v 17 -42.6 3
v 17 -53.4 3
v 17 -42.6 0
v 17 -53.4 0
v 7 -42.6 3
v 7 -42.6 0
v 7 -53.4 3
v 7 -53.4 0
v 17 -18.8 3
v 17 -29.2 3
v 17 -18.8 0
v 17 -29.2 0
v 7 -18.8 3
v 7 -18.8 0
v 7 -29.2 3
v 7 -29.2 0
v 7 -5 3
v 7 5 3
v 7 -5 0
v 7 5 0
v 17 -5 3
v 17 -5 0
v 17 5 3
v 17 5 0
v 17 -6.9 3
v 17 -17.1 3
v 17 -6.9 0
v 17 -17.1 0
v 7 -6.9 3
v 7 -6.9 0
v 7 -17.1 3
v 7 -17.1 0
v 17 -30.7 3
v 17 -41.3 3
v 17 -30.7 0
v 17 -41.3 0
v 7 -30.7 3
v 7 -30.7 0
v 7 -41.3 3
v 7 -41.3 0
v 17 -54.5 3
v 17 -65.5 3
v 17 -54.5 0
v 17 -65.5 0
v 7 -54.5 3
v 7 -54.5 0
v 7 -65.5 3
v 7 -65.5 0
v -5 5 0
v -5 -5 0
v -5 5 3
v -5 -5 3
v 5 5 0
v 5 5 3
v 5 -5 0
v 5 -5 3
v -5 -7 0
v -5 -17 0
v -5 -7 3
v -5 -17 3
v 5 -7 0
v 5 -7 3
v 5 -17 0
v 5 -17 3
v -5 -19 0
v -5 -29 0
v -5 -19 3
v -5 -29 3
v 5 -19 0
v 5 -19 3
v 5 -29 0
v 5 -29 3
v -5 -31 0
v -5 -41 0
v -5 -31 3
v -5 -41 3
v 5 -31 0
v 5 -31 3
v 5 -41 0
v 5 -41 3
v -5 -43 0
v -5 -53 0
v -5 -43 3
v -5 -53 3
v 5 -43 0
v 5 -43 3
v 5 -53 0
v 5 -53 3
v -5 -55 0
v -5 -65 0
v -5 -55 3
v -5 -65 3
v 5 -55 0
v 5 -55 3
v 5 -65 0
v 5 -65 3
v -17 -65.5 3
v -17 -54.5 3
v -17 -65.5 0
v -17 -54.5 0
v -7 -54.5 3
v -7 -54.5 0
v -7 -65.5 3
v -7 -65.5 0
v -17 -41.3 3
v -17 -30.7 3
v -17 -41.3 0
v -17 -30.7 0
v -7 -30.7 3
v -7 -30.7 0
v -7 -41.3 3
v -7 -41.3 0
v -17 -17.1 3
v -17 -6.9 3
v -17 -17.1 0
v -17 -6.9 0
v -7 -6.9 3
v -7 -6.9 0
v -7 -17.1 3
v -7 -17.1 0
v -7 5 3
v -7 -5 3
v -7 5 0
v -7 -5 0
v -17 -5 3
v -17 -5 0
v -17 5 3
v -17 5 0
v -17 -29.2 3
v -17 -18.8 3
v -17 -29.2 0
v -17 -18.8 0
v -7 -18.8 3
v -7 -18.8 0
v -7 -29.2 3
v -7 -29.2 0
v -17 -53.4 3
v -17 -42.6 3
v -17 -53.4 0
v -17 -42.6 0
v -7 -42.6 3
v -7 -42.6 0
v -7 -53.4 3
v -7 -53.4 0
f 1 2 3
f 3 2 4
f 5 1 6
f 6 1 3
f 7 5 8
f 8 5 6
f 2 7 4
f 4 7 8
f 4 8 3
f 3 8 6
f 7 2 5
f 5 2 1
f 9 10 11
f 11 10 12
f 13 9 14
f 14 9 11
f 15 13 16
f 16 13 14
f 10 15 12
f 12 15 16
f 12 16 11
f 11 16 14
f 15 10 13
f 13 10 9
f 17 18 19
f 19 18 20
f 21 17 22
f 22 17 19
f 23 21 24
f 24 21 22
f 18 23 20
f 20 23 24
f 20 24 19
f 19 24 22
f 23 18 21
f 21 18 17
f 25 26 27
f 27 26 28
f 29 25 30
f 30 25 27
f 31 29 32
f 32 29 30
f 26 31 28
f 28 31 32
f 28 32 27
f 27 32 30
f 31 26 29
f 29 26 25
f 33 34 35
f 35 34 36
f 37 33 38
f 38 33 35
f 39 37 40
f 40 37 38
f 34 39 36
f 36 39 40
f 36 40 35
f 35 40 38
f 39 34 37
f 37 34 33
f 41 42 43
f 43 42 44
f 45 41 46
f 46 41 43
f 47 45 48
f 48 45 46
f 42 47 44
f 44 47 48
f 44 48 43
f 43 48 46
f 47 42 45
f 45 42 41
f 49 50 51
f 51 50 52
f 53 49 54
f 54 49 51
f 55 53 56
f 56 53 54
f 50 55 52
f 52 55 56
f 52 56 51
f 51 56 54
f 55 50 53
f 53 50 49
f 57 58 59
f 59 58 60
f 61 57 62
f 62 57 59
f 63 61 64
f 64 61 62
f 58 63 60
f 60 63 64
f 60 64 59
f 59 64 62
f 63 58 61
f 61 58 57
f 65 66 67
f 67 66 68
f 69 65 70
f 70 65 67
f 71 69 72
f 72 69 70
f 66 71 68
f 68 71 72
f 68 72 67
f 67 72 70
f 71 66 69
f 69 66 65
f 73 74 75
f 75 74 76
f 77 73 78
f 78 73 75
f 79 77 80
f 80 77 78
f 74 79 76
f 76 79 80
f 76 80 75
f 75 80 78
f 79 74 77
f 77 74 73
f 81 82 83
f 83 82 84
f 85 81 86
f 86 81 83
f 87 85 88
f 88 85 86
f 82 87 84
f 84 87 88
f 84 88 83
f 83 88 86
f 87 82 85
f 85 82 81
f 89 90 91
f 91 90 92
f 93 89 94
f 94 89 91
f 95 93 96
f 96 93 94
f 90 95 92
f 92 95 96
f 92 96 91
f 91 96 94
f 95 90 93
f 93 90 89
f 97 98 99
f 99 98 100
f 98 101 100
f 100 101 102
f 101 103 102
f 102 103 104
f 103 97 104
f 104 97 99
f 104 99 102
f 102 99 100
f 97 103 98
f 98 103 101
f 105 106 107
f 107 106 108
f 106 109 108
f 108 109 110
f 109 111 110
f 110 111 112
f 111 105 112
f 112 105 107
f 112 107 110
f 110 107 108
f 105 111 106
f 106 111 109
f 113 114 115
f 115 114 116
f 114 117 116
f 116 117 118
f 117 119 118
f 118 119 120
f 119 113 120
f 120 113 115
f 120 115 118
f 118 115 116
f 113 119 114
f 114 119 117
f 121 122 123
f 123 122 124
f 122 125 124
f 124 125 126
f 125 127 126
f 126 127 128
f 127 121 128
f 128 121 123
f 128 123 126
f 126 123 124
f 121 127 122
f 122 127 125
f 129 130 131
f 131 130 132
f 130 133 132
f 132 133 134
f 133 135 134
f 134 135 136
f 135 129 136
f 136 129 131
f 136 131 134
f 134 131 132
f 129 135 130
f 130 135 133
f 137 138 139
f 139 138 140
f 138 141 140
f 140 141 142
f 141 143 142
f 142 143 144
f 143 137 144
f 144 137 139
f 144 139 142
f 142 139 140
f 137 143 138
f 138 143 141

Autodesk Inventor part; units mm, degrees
ref_plane "YZ Plane" through (0, 0, 0) normal (1, 0, 0) x (0, 1, 0)
ref_plane "XZ Plane" through (0, 0, 0) normal (0, 1, 0) x (-1, 0, 0)
ref_plane "XY Plane" through (0, 0, 0) normal (0, 0, 1) x (1, 0, 0)
sketch "Sketch1" plane through (0, 0, 0) normal (0, 0, 1) x (1, 0, 0)
  line L0 (5, -5) -> (-5, -5)
  line L1 (-5, -5) -> (-5, 5)
  line L2 (-5, 5) -> (5, 5)
  line L3 (5, 5) -> (5, -5)
  line L4 (5, -5) -> (-5, 5) construction
  line L5 (-5, -5) -> (5, 5) construction
  point P0 (0, 0)
  dimension "d0" = 10
  dimension "d2" = 10
extrude "Extrusion1" add sketch "Sketch1" along normal blind 3
pattern_linear "Rectangular Pattern1" count 6 spacing 12 along (0, -1, 0) of "Extrusion1"
sketch "Sketch2" plane through (0, 0, 3) normal (0, 0, 1) x (-1, 0, 0)
  line L0 (-17, -5) -> (-7, -5)
  line L1 (-7, -5) -> (-7, 5)
  line L2 (-7, 5) -> (-17, 5)
  line L3 (-17, 5) -> (-17, -5)
  line L4 (-17, -5) -> (-7, 5) construction
  line L5 (-7, -5) -> (-17, 5) construction
  line L6 (5, 17) -> (-5, 17) construction
  line L7 (-5, 17) -> (-5, 7) construction
  line L8 (-5, 7) -> (5, 7) construction
  line L9 (5, 7) -> (5, 17) construction
  line L10 (5, 29) -> (-5, 29) construction
  line L11 (-5, 29) -> (-5, 19) construction
  line L12 (-5, 19) -> (5, 19) construction
  line L13 (5, 19) -> (5, 29) construction
  line L14 (5, 41) -> (-5, 41) construction
  line L15 (-5, 41) -> (-5, 31) construction
  line L16 (-5, 31) -> (5, 31) construction
  line L17 (5, 31) -> (5, 41) construction
  line L18 (5, 53) -> (-5, 53) construction
  line L19 (-5, 53) -> (-5, 43) construction
  line L20 (-5, 43) -> (5, 43) construction
  line L21 (5, 43) -> (5, 53) construction
  line L22 (5, 65) -> (-5, 65) construction
  line L23 (-5, 65) -> (-5, 55) construction
  line L24 (-5, 55) -> (5, 55) construction
  line L25 (5, 55) -> (5, 65) construction
  line L26 (-7, 17.1) -> (-17, 17.1)
  line L27 (-17, 17.1) -> (-17, 6.9)
  line L28 (-17, 6.9) -> (-7, 6.9)
  line L29 (-7, 6.9) -> (-7, 17.1)
  line L30 (-7, 17.1) -> (-17, 6.9) construction
  line L31 (-17, 17.1) -> (-7, 6.9) construction
  line L32 (-7, 29.2) -> (-17, 29.2)
  line L33 (-17, 29.2) -> (-17, 18.8)
  line L34 (-17, 18.8) -> (-7, 18.8)
  line L35 (-7, 18.8) -> (-7, 29.2)
  line L36 (-7, 29.2) -> (-17, 18.8) construction
  line L37 (-17, 29.2) -> (-7, 18.8) construction
  line L38 (-7, 41.3) -> (-17, 41.3)
  line L39 (-17, 41.3) -> (-17, 30.7)
  line L40 (-17, 30.7) -> (-7, 30.7)
  line L41 (-7, 30.7) -> (-7, 41.3)
  line L42 (-7, 41.3) -> (-17, 30.7) construction
  line L43 (-17, 41.3) -> (-7, 30.7) construction
  line L44 (-7, 53.4) -> (-17, 53.4)
  line L45 (-17, 53.4) -> (-17, 42.6)
  line L46 (-17, 42.6) -> (-7, 42.6)
  line L47 (-7, 42.6) -> (-7, 53.4)
  line L48 (-7, 53.4) -> (-17, 42.6) construction
  line L49 (-17, 53.4) -> (-7, 42.6) construction
  line L50 (-7, 65.5) -> (-17, 65.5)
  line L51 (-17, 65.5) -> (-17, 54.5)
  line L52 (-17, 54.5) -> (-7, 54.5)
  line L53 (-7, 54.5) -> (-7, 65.5)
  line L54 (-7, 65.5) -> (-17, 54.5) construction
  line L55 (-17, 65.5) -> (-7, 54.5) construction
  line L56 (-5, 12) -> (4.1191, 12) construction
  line L57 (-5, 24) -> (3.6782, 24) construction
  line L58 (-5, 36) -> (3.6782, 36) construction
  line L59 (-5, 48) -> (0, 48) construction
  line L60 (-5, 60) -> (2.1339, 60) construction
  point P0 (0, 0)
  point P1 (-12, 0)
  dimension "d8" = 12
  dimension "d10" = 10
  dimension "d11" = 10
  dimension "d12" = 10.2
  dimension "d13" = 5.1
  dimension "d14" = 10.4
  dimension "d15" = 5.2
  dimension "d16" = 5.3
  dimension "d17" = 5.4
  dimension "d18" = 10.6
  dimension "d19" = 10.8
  dimension "d20" = 11
  dimension "d21" = 5.5
extrude "Extrusion2" add sketch "Sketch2" against normal blind 3
ref_plane "Work Plane1" through (0, -5, 0) normal (1, 0, 0) x (0, 1, 0)
mirror "Mirror1" about plane through (0, -5, 0) normal (1, 0, 0) of "Extrusion2"
sketch "Sketch3" plane through (-17, 5, 3) normal (0, 0, 1) x (1, 0, 0)
  line L0 (0, 0) -> (10, 0) projected
  line L1 (0, -10) -> (0, 0) projected
  line L2 (10, -10) -> (0, -10) projected
  line L3 (10, 0) -> (10, -10) projected
  line L4 (10, -70.5) -> (0, -70.5) projected
  line L5 (10, -59.5) -> (10, -70.5) projected
  line L6 (0, -59.5) -> (10, -59.5) projected
  line L7 (0, -70.5) -> (0, -59.5) projected
  line L8 (0, 0) -> (10, 0)
  line L9 (10, 0) -> (10, -70.5)
  line L10 (10, -70.5) -> (0, -70.5)
  line L11 (0, -70.5) -> (0, 0)
  point P0 (17, -5)
extrude "Extrusion3" [suppressed]
sketch "Sketch4" plane through (0, 0, 3) normal (0, 0, 1) x (1, 0, 0)
  line L0 (17, 5) -> (7, 5) projected
  line L1 (7, 5) -> (7, -5) projected
  line L2 (7, -5) -> (17, -5) projected
  line L3 (17, -5) -> (17, 5) projected
  line L4 (7, 5) -> (17, 5)
  line L5 (17, 5) -> (17, -65.5)
  line L6 (17, -65.5) -> (7, -65.5)
  line L7 (7, -65.5) -> (7, 5)
  point P0 (0, 0)
extrude "Extrusion4" [suppressed]
sketch "Sketch5" plane through (-5, -65, 3) normal (0, 0, 1) x (1, 0, 0)
  line L0 (0, 60) -> (10, 60) projected
  line L1 (10, 60) -> (10, 70) projected
  line L2 (10, 70) -> (0, 70) projected
  line L3 (0, 70) -> (0, 60) projected
  line L4 (0, 70) -> (10, 70)
  line L5 (10, 70) -> (10, 0)
  line L6 (10, 0) -> (0, 0)
  line L7 (0, 0) -> (0, 70)
  point P0 (5, 65)
extrude "Extrusion5" [suppressed]
properties part number "Calibration"
